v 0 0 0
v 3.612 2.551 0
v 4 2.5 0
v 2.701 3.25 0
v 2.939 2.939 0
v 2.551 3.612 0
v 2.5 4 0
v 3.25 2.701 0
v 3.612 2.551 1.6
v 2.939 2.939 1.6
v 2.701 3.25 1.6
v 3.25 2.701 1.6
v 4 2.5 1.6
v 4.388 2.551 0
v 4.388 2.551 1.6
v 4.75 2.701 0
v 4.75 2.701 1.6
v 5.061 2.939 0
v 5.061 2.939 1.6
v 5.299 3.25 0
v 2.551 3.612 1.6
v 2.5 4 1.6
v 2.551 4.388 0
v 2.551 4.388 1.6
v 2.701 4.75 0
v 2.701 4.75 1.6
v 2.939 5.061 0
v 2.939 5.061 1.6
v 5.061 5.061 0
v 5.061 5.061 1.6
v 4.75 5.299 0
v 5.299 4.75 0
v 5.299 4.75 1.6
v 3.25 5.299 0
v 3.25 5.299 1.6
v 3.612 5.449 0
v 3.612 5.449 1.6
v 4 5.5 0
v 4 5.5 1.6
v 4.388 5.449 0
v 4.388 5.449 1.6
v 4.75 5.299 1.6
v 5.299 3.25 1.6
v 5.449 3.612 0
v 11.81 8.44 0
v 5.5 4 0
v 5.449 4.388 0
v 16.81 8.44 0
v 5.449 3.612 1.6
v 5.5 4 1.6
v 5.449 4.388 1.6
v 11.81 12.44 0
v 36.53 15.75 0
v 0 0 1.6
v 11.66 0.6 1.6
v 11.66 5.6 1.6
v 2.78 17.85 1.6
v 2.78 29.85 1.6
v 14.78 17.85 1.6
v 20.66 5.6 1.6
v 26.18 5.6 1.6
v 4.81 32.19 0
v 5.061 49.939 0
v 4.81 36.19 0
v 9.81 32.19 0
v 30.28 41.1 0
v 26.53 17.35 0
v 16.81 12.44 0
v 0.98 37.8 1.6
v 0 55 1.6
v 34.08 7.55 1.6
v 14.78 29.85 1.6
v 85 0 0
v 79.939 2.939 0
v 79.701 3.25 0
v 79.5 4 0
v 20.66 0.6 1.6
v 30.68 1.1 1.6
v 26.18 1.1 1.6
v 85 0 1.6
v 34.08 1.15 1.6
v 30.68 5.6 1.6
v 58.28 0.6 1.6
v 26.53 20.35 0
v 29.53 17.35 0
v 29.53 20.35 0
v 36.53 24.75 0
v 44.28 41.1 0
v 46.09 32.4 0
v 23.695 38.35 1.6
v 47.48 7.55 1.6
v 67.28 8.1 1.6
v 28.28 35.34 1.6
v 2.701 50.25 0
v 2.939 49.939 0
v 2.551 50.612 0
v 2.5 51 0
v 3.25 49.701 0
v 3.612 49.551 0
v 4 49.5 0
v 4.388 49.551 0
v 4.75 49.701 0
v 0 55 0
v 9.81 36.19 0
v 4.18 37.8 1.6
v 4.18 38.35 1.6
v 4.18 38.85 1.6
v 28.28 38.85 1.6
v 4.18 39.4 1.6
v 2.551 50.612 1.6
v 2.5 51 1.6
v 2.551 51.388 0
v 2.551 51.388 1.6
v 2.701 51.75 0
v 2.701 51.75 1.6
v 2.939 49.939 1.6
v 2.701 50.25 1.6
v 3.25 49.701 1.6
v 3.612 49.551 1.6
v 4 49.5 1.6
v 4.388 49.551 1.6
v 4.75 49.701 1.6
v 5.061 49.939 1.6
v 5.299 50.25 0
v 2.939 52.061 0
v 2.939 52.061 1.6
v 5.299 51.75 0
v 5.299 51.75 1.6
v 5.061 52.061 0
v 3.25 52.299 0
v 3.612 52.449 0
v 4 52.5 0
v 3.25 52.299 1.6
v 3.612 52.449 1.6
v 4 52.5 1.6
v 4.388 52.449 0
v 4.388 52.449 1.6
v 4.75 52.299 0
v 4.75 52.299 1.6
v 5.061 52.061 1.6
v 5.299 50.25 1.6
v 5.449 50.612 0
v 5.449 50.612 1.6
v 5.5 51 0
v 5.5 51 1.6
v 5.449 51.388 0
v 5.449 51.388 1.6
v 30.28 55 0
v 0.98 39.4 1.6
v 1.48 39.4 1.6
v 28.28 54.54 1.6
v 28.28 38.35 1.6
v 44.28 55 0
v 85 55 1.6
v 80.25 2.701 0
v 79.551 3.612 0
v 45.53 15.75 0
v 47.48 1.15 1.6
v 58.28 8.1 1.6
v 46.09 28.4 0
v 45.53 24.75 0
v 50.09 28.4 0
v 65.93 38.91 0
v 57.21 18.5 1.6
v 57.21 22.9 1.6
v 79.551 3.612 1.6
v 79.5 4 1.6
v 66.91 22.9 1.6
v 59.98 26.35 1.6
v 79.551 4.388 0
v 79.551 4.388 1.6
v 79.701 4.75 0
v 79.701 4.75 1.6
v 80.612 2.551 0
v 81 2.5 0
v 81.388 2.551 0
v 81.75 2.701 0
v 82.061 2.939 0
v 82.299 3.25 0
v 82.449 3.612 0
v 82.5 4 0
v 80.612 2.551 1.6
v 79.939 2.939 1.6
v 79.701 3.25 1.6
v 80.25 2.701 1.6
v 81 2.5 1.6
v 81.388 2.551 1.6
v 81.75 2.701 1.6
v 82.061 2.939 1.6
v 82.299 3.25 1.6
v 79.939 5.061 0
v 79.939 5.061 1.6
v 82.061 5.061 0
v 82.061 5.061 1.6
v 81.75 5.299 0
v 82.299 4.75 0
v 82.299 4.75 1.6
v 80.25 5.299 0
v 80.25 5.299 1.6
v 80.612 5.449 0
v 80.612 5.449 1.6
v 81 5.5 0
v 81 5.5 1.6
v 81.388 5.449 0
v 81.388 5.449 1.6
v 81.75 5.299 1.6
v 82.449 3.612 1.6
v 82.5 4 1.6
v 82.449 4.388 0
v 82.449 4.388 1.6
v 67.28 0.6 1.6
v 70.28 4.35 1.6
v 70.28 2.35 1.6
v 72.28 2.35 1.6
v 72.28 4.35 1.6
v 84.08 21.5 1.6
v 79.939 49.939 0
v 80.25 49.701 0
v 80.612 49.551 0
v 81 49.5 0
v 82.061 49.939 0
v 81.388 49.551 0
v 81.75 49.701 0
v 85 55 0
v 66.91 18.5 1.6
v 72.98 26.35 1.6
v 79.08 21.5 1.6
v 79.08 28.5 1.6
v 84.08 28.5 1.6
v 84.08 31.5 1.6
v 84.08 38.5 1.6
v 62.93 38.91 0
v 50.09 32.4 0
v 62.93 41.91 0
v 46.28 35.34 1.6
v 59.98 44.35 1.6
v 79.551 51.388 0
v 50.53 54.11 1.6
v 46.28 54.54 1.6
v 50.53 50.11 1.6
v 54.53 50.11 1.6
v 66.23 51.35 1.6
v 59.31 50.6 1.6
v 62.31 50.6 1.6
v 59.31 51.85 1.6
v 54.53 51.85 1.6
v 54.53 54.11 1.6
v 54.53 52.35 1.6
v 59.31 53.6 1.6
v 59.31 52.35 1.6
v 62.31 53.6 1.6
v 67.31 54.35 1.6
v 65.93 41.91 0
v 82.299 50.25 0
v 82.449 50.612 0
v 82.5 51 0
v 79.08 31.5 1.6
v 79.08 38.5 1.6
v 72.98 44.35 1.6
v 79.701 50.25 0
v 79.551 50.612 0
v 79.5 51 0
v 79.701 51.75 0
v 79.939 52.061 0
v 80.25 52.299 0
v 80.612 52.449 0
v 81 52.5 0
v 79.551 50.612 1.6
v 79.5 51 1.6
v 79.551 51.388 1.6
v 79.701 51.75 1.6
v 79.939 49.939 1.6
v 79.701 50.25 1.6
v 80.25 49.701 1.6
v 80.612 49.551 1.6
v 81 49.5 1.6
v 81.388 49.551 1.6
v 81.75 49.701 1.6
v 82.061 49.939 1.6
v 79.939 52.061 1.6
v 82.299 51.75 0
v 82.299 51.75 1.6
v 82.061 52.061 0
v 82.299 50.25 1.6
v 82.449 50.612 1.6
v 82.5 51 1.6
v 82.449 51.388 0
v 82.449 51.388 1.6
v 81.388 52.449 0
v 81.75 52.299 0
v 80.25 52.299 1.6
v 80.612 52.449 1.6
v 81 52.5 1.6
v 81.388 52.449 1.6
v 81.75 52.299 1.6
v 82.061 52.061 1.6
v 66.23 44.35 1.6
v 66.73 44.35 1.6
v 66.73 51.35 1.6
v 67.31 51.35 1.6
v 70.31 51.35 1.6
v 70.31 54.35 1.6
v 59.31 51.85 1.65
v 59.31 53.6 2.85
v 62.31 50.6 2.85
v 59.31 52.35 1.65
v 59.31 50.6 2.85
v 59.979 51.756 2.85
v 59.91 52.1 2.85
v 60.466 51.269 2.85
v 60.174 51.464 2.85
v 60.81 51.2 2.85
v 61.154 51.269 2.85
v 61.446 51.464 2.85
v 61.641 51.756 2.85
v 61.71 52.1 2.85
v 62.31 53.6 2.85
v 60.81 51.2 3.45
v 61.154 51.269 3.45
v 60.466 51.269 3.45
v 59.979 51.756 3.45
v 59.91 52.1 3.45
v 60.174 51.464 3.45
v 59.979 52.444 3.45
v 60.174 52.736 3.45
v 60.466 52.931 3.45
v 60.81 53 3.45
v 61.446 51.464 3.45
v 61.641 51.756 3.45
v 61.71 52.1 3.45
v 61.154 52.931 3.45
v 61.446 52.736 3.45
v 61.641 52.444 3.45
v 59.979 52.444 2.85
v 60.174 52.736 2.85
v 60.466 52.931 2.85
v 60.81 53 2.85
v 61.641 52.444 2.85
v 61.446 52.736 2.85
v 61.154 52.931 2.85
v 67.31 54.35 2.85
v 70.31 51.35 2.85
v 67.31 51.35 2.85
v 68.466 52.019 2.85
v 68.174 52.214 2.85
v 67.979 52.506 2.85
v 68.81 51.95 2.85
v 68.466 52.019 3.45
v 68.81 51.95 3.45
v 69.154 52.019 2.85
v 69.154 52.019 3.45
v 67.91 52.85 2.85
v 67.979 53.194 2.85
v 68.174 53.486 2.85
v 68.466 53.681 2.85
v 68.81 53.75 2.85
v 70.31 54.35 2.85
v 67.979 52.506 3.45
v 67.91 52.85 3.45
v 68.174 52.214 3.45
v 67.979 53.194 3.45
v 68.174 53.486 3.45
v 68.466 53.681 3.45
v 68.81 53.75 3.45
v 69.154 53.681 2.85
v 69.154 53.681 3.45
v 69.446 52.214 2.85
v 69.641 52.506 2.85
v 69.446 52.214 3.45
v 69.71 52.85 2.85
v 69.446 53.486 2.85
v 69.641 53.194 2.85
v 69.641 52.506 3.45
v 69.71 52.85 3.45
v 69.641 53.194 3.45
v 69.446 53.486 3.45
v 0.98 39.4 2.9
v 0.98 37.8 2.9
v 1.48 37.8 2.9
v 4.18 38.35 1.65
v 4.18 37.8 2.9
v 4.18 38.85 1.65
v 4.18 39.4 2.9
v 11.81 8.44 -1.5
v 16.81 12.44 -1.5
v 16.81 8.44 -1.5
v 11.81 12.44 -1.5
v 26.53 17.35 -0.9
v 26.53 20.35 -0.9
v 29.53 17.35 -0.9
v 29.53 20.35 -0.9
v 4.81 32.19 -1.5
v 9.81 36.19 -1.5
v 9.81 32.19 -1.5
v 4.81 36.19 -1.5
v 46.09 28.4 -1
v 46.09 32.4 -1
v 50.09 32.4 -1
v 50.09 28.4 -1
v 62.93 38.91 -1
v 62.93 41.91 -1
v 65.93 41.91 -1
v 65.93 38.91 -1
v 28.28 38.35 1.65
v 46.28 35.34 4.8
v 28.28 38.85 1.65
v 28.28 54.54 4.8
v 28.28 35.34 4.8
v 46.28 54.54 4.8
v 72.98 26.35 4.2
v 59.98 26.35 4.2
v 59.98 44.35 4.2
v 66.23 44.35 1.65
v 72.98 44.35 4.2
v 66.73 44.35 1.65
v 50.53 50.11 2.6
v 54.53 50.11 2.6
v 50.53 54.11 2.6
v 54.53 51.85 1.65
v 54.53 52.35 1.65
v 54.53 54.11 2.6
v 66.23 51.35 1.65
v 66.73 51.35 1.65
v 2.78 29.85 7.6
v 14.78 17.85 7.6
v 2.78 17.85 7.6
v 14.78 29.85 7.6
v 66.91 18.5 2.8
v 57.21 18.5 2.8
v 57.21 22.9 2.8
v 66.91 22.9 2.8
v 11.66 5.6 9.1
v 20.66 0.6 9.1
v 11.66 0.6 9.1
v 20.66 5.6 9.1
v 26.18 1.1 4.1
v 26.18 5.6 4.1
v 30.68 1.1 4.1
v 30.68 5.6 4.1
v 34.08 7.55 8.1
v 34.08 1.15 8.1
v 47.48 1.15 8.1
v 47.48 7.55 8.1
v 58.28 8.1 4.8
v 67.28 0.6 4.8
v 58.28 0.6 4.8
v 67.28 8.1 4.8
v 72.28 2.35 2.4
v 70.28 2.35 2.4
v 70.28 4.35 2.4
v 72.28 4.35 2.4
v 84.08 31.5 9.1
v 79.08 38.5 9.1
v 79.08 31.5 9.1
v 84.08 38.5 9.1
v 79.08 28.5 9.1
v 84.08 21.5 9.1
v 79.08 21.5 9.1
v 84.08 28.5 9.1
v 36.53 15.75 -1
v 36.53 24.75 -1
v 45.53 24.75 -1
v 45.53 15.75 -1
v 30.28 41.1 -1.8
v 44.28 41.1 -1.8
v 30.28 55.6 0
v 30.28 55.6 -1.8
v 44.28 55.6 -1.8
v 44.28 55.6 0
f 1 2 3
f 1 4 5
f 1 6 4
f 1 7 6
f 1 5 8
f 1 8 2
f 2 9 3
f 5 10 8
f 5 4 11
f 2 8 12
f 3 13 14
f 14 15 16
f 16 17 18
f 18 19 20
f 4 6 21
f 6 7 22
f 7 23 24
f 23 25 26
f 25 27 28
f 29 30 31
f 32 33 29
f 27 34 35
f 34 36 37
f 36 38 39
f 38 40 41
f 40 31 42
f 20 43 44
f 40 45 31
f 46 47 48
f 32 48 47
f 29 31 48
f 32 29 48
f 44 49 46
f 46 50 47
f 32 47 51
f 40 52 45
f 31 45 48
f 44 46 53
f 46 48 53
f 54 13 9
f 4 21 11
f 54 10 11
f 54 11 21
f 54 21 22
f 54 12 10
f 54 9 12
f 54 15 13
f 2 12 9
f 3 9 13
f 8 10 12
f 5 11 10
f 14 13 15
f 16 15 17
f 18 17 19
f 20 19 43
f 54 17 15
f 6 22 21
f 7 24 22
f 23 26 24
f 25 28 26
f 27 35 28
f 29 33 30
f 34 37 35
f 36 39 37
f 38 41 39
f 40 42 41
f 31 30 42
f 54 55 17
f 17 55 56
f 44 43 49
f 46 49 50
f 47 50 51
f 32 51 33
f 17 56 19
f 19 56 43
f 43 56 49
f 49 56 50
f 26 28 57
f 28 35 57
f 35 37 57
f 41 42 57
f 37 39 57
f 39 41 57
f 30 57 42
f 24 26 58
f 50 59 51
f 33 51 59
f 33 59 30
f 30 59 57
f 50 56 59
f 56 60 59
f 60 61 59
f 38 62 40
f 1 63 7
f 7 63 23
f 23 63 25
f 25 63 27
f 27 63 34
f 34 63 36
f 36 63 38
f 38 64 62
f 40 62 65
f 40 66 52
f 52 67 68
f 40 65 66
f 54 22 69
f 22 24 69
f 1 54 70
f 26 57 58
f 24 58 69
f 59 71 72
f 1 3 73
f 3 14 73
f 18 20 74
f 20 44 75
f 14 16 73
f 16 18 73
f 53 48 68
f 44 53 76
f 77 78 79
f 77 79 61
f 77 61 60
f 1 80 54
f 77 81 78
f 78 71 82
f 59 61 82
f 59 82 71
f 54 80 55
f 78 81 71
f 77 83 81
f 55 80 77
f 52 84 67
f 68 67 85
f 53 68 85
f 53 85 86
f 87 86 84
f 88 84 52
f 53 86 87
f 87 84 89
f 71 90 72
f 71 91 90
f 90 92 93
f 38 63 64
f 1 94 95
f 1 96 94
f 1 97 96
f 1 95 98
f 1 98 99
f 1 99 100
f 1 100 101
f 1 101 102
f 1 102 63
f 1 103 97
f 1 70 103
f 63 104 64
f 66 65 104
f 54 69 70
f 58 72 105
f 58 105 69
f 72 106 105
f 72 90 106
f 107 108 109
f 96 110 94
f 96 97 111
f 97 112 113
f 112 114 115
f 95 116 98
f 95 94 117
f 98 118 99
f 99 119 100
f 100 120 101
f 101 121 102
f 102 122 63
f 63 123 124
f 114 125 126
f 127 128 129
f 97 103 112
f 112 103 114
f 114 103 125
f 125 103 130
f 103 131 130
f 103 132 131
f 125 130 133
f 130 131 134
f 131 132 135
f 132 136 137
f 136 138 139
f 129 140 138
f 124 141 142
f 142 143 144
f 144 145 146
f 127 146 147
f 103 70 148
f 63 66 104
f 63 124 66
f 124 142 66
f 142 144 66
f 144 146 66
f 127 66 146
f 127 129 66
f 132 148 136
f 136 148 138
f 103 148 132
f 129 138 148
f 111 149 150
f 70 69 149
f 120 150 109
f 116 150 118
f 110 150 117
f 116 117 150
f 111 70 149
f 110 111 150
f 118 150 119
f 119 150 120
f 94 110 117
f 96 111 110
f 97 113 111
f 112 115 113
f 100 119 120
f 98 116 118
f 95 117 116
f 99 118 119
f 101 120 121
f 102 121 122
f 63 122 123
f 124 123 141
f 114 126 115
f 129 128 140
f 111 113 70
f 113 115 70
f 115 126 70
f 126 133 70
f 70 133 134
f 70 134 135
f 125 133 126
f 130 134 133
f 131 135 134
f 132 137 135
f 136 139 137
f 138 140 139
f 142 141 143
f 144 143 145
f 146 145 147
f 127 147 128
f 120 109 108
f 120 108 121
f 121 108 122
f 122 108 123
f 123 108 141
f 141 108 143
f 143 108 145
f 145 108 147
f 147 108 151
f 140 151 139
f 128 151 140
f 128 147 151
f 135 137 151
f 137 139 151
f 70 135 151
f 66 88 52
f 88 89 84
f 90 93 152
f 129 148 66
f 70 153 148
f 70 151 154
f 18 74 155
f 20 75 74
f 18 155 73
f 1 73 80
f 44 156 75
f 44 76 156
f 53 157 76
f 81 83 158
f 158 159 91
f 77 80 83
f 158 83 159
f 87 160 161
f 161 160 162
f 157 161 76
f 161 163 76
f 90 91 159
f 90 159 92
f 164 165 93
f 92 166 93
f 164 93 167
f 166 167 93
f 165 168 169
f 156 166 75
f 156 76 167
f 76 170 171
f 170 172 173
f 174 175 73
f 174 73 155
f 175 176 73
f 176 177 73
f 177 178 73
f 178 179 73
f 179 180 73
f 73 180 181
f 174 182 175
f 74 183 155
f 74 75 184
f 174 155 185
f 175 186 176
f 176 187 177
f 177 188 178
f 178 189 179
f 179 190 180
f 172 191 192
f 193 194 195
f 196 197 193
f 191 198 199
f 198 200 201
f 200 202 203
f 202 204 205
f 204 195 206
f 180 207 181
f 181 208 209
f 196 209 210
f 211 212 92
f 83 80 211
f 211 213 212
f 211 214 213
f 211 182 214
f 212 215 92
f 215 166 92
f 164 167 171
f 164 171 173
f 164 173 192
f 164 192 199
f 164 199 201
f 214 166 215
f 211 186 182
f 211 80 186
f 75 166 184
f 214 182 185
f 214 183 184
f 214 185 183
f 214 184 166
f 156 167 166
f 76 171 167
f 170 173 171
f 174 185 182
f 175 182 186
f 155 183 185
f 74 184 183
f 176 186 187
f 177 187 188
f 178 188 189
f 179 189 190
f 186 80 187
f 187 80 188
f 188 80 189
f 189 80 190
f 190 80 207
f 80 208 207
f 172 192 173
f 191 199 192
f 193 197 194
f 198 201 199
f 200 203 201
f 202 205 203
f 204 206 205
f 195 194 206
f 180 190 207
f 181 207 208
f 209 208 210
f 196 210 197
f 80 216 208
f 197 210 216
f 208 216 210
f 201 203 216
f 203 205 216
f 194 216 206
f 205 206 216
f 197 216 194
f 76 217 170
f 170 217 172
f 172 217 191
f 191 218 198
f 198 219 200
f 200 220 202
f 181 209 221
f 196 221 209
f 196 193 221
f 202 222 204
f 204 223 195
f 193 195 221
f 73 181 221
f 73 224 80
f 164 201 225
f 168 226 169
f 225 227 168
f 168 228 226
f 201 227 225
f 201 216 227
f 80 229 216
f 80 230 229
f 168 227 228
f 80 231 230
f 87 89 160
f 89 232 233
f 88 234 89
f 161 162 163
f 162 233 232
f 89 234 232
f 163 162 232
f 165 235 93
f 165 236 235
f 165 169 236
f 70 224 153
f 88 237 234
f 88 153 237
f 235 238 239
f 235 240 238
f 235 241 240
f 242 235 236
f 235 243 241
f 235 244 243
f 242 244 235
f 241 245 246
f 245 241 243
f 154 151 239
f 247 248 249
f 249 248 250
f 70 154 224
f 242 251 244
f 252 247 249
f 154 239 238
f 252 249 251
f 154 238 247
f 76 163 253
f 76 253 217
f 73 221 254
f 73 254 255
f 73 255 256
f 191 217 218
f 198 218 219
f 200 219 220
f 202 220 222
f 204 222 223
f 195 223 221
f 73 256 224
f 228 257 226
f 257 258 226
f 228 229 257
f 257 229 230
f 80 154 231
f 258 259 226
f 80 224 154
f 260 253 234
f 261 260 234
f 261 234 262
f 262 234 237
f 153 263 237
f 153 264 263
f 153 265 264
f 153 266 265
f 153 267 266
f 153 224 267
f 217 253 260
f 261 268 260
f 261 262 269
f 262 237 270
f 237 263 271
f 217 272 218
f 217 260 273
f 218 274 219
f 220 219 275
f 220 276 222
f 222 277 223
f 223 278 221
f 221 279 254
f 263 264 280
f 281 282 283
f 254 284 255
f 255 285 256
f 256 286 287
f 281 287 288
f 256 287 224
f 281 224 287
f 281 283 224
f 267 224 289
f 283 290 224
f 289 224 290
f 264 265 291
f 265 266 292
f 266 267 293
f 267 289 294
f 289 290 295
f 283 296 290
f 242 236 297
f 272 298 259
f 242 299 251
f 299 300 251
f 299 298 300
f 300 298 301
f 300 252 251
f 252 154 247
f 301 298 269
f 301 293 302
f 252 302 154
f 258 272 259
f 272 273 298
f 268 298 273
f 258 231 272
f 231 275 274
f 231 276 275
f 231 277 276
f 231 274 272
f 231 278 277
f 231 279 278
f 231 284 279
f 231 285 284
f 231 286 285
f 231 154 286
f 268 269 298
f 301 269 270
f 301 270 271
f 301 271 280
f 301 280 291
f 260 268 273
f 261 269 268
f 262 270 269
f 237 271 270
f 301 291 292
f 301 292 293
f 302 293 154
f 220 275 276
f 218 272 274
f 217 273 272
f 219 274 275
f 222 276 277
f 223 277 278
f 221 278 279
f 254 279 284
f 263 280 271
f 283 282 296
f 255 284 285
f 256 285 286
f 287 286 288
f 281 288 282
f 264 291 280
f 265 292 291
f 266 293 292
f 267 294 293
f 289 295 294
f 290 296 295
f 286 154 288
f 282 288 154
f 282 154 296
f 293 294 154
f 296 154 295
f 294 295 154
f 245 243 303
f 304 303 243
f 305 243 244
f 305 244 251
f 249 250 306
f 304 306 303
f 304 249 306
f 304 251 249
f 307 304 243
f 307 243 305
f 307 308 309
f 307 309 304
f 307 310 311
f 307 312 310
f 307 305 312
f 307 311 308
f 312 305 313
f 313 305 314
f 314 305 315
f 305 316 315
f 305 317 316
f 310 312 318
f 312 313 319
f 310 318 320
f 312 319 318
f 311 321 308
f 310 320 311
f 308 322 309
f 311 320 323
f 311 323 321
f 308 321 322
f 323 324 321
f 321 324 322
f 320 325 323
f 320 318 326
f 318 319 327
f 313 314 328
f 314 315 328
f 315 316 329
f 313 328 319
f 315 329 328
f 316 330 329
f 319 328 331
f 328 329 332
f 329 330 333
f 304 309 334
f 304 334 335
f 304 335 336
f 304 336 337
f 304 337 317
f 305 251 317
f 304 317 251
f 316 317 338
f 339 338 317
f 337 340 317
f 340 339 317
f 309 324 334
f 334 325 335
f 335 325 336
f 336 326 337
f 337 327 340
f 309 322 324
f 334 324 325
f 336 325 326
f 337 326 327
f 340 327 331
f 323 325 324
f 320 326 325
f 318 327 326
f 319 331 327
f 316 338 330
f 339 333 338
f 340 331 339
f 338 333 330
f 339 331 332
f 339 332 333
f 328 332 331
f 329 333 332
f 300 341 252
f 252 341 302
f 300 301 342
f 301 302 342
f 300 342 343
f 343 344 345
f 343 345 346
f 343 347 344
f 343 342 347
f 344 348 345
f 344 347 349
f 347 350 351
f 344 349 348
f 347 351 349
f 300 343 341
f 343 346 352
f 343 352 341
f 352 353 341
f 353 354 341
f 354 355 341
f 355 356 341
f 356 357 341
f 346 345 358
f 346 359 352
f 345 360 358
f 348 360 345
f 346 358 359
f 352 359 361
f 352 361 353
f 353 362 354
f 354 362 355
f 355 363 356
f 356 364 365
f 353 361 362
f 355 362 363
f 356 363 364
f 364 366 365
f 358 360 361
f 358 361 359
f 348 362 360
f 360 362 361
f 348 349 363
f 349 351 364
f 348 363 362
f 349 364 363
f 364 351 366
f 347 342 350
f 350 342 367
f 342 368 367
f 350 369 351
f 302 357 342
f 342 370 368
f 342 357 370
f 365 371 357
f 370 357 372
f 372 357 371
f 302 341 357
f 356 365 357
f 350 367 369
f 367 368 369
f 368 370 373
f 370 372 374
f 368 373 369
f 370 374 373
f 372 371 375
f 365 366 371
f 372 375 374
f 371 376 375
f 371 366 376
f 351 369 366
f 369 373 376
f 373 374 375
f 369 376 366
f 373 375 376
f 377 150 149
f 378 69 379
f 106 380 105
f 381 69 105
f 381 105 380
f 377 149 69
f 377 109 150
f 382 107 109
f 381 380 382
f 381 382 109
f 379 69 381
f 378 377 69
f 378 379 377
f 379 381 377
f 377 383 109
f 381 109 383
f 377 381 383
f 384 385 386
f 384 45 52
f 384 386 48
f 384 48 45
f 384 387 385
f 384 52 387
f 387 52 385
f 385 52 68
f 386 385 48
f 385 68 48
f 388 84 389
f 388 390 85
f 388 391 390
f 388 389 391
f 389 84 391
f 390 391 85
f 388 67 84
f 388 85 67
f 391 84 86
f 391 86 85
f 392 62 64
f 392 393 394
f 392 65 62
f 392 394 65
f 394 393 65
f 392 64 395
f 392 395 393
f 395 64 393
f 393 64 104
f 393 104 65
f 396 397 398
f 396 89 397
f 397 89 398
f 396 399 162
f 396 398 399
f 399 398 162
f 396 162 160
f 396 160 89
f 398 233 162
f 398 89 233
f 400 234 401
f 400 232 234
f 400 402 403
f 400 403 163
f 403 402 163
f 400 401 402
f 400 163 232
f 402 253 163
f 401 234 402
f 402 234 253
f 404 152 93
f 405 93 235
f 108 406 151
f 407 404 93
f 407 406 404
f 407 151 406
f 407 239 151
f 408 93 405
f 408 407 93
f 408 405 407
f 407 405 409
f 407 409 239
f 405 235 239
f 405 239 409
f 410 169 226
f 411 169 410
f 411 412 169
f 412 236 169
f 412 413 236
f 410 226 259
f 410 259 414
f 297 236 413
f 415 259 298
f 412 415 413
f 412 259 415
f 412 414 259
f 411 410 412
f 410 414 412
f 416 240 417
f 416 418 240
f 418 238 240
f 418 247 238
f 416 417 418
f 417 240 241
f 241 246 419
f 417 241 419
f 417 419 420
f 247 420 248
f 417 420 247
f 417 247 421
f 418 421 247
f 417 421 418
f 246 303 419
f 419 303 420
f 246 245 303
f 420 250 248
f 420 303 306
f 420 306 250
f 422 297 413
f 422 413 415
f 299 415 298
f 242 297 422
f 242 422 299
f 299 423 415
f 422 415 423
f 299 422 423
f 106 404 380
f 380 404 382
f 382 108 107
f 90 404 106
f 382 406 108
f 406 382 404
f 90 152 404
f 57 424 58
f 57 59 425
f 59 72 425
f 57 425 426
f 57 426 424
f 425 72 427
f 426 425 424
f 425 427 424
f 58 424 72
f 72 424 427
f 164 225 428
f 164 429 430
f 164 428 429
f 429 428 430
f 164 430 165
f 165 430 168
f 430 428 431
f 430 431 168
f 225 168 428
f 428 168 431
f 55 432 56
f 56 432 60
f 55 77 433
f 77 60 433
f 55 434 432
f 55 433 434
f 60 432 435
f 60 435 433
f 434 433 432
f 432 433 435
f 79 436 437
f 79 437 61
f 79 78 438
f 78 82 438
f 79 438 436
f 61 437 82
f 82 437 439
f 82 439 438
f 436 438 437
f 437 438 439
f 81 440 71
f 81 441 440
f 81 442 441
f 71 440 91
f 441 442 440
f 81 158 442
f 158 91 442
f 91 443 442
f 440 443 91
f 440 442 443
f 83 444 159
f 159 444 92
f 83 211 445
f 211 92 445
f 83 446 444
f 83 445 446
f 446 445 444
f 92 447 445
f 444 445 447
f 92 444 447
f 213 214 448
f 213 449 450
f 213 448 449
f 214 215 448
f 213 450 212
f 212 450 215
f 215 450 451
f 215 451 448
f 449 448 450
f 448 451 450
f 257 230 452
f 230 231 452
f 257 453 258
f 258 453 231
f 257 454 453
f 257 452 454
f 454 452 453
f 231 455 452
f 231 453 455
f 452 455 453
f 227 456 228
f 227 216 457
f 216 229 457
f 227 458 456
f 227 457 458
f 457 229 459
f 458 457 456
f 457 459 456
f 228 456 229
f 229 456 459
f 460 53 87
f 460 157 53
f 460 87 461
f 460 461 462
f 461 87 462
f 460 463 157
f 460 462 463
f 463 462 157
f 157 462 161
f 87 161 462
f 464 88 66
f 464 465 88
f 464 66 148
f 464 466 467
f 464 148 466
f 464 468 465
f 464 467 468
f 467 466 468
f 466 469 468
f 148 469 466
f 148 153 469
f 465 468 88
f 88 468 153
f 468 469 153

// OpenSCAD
// =============================================================================
// OpenMotorBridge - Dummy 3D Model: Main Board PCB (PCBA 01 Rev 10.0)
// =============================================================================
// File: hardware/cad/scad/00_common/dummies/dummy_main_pcb.scad
// Description: Accurate 3D representation of the central openMotorBridge
//              mainboard (PCBA 01: 85.0 x 55.0 x 1.6 mm, 4 layers ENIG)
//              with all v10 ICs, vertical connectors, and triple antenna ports:
//              - ANT1: LoRa 868 MHz (Hirose U.FL at X=60.81, Y=52.10)
//              - ANT2: Helmet Audio BT 5.4 (Hirose U.FL at X=68.81, Y=52.85)
//              - ANT3: BLE 2.4 GHz (Johanson 2450AT18 Ceramic Chip at X=2.58, Y=38.60)
//
// COORDINATE SYSTEM CONVENTION (OpenSCAD Cartesian):
// - X: 0.0 to 85.0 mm (West to East)
// - Y: 0.0 to 55.0 mm (South [Front Wall / Connectors] to North [Rear Wall / Antennas])
//   * Y = 0..10 mm (SOUTH): J1 (Bordnetz 6P), SW1 (Button), J6 (Periphery 16P), J3 (USB-C), D1 (Status LED)
//   * Y = 40..55 mm (NORTH): ANT1 (LoRa U.FL), ANT2 (Helmaudio U.FL), U2 (ESP32-S31), J2 (MicroSD Slot), U10 (SX1262)
//   * X = 0..5 mm (WEST): ANT3 (Johanson Ceramic Chip Antenna for BLE at X=2.58, Y=38.60)
//   * X = 80..85 mm (EAST): J5 (Battery 4P at Y = 35.0), J7 (Reserve USB 4P at Y = 25.0)
// =============================================================================

include <../parameters.scad>;

module dummy_main_pcb() {
    // 1. PCB Substrate (FR4 4-Layer High-TG150 Green ENIG: 85.0 x 55.0 x 1.6 mm)
    color("forestgreen") {
        difference() {
            cube(size=[85.0, 55.0, 1.6], center=false);
            // 4x M2.5 / M3 Mounting Holes (offset 4.0 mm: 77.0 x 47.0 mm pitch)
            translate([4.0, 4.0, -0.5]) cylinder(r=1.5, h=2.6, $fn=24);
            translate([81.0, 4.0, -0.5]) cylinder(r=1.5, h=2.6, $fn=24);
            translate([4.0, 51.0, -0.5]) cylinder(r=1.5, h=2.6, $fn=24);
            translate([81.0, 51.0, -0.5]) cylinder(r=1.5, h=2.6, $fn=24);
        }
    }

    // --- NORTH / REAR COMPONENTS & DUAL U.FL PORTS (Y = 40..55 mm) ---

    // 2. Main Controller: ESP32-S31-WROOM-1U (U2: 18.0 x 19.2 x 3.2 mm)
    // KiCad: X = 37.28, Y_cad = 44.94 mm
    color("silver")
        translate([37.28 - 9.0, 44.94 - 9.6, 1.6])
            cube(size=[18.0, 19.2, 3.2], center=false);

    // 3. Dedicated Helmet Audio SoC: Qualcomm QCC3084 BT 5.4 (U9: 13.0 x 18.0 x 2.6 mm)
    // KiCad: X = 66.48, Y_cad = 35.35 mm (Routes RF via Pin 15 to ANT2 U.FL)
    color([0.15, 0.40, 0.55])
        translate([66.48 - 6.5, 35.35 - 9.0, 1.6])
            cube(size=[13.0, 18.0, 2.6], center=false);

    // 4. Semtech SX1262 LoRa 868 MHz Transceiver (U10: 4.0 x 4.0 x 1.0 mm)
    // KiCad: X = 52.53, Y_cad = 52.11 mm
    color("darkslategray")
        translate([52.53 - 2.0, 52.11 - 2.0, 1.6])
            cube(size=[4.0, 4.0, 1.0], center=false);

    // 5. ANT1: LoRa 868 MHz Hirose U.FL Receptacle (Taoglas FXP895 flex cable connection)
    // KiCad: X = 60.81, Y_cad = 52.10 mm
    color("gold") {
        translate([60.81 - 1.5, 52.10 - 1.5, 1.6])
            cube(size=[3.0, 3.0, 1.25], center=false);
        translate([60.81, 52.10, 1.6 + 1.25])
            cylinder(r=0.9, h=0.6, $fn=16);
    }
    // 50 Ohm CPW RF Microstrip from U10 to ANT1
    color("gold")
        translate([52.53 + 2.0, 52.10 - 0.25, 1.6])
            cube(size=[60.81 - (52.53 + 2.0) - 1.5, 0.5, 0.05], center=false);

    // 6. ANT2: Helmet Audio BT 5.4 Hirose U.FL Receptacle (Taoglas FXP73 flex cable connection)
    // Placed right next to ANT1: KiCad X = 68.81, Y_cad = 52.85 mm, rotated 90°
    color("gold") {
        translate([68.81 - 1.5, 52.85 - 1.5, 1.6])
            cube(size=[3.0, 3.0, 1.25], center=false);
        translate([68.81, 52.85, 1.6 + 1.25])
            cylinder(r=0.9, h=0.6, $fn=16);
    }
    // 50 Ohm CPW RF Microstrip from U9 to ANT2
    color("gold")
        translate([66.48 - 0.25, 35.35 + 9.0, 1.6])
            cube(size=[0.5, 52.85 - (35.35 + 9.0) - 1.5, 0.05], center=false);

    // --- WEST / LEFT EDGE ON-BOARD CERAMIC CHIP ANTENNA (X = 0..5 mm) ---

    // 7. ANT3: On-Board Johanson 2450AT18D0100 2.4 GHz Ceramic Chip Antenna for ESP32-S31 BLE
    // KiCad: X = 2.58, Y_cad = 38.60 mm, rotated 180° (feed facing inward to MCU, 2.58 mm edge clearance)
    // Dimensions: 3.2 x 1.6 x 1.3 mm (1206 footprint)
    translate([2.58, 38.60, 1.6]) {
        // Ceramic body
        color("ghostwhite")
            translate([-1.6, -0.8, 0])
                cube(size=[3.2, 1.6, 1.3], center=false);
        // Solder termination end caps
        color("silver") {
            translate([-1.6, -0.8, 0]) cube(size=[0.5, 1.6, 1.3], center=false); // GND terminal (facing edge)
            translate([1.1, -0.8, 0]) cube(size=[0.5, 1.6, 1.3], center=false);  // Feed terminal (facing MCU)
        }
    }
    // RF Feed Trace from ESP32-S31 to ANT3
    color("gold")
        translate([2.58 + 1.6, 38.60 - 0.25, 1.6])
            cube(size=[37.28 - 9.0 - (2.58 + 1.6), 0.5, 0.05], center=false);

    // --- POWER STAGE & ACTUATOR SWITCHES (X = 0..25 mm & X = 55..75 mm) ---

    // 8. LM5164-Q1 Power Choke L1 (Sunlord MWSA1206S-470: 12.0 x 12.0 x 6.0 mm)
    // KiCad: X = 8.78, Y_cad = 23.85 mm
    color([0.25, 0.25, 0.28])
        translate([8.78 - 6.0, 23.85 - 6.0, 1.6])
            cube(size=[12.0, 12.0, 6.0], center=false); // 47µH High-Current Inductor

    // 9. U12: TI TPS4H160BQPWPRQ1 Quad Smart High-Side Power Switch (HTSSOP-28: 9.7 x 4.4 x 1.2 mm)
    // KiCad: X = 62.06, Y_cad = 20.70 mm
    color("darkslategray")
        translate([62.06 - 4.85, 20.70 - 2.2, 1.6])
            cube(size=[9.7, 4.4, 1.2], center=false);

    // --- SOUTH / FRONT EDGE CONNECTORS (Y = 0..10 mm) ---

    // 10. Header J1: Molex Micro-Lock Plus 1.25mm 6-Pin Vertikal (Bordnetz & CAN)
    // KiCad: X = 16.16, Y_cad = 3.10 mm
    color("ivory")
        translate([16.16 - 4.5, 3.10 - 2.5, 1.6])
            cube(size=[9.0, 5.0, 7.5], center=false);

    // 11. Push-Button SW1 (Pairing / Reset: Alps SKRK)
    // KiCad: X = 28.43, Y_cad = 3.35 mm
    color("crimson")
        translate([28.43 - 2.25, 3.35 - 2.25, 1.6])
            cube(size=[4.5, 4.5, 2.5], center=false);

    // 12. Header J6: Molex Micro-Lock Plus 16-Pin 2x08 Vertikal (4 Autarke OMB-Systemstränge)
    // KiCad: X = 40.78, Y_cad = 4.35 mm
    color("ivory")
        translate([40.78 - 6.7, 4.35 - 3.2, 1.6])
            cube(size=[13.4, 6.4, 6.5], center=false);

    // 13. Receptacle J3: USB Type-C 16-Pin Service & Flash Port (HRO TYPE-C-31-M-12)
    // KiCad: X = 62.78, Y_cad = 4.10 mm
    color("silver")
        translate([62.78 - 4.5, 4.10 - 3.5, 1.6])
            cube(size=[9.0, 7.5, 3.2], center=false);

    // 14. Status LED D1 (WS2812B RGB directly to the right of J3 along front edge)
    // KiCad: X = 71.28, Y_cad = 3.35 mm (directly behind front light pipe window)
    color("cyan")
        translate([71.28 - 1.0, 3.35 - 1.0, 1.6])
            cube(size=[2.0, 2.0, 0.8], center=false);

    // --- EAST / SIDE EDGE HEADERS (X = 80..85 mm) ---

    // 15. Header J5: USV-Akku & NTC (Molex Micro-Lock Plus 4-Pin Vertikal)
    // KiCad: X = 81.58, Y_cad = 35.00 mm
    color("ivory")
        translate([81.58 - 2.5, 35.00 - 3.5, 1.6])
            cube(size=[5.0, 7.0, 7.5], center=false);

    // 16. Header J7: Reserve USB Port 7 (Molex Micro-Lock Plus 4-Pin Vertikal)
    // KiCad: X = 81.58, Y_cad = 25.00 mm
    color("ivory")
        translate([81.58 - 2.5, 25.00 - 3.5, 1.6])
            cube(size=[5.0, 7.0, 7.5], center=false);

    // --- BOTTOM LAYER (B.Cu) COMPONENTS ---

    // 17. Microchip USB2517I 7-Port Automotive USB 2.0 Hub (U8: QFN-64 9x9mm)
    // KiCad: X = 41.03, Y_cad = 20.25 mm
    color("darkslategray")
        translate([41.03 - 4.5, 20.25 - 4.5, -1.0])
            cube(size=[9.0, 9.0, 1.0], center=false);

    // 18. TI LM5164-Q1 72V Step-Down (U1), BQ24075 USV Controller (U4), ES8388 Codec (U3)
    color("black") {
        translate([7.31 - 2.5, 34.19 - 2.0, -1.5]) cube(size=[5.0, 4.0, 1.5], center=false);  // U1 LM5164
        translate([64.43 - 1.5, 40.41 - 1.5, -1.0]) cube(size=[3.0, 3.0, 1.0], center=false); // U4 BQ24075
        translate([48.09 - 2.0, 30.40 - 2.0, -1.0]) cube(size=[4.0, 4.0, 1.0], center=false); // U3 ES8388
        translate([14.31 - 2.5, 10.44 - 2.0, -1.5]) cube(size=[5.0, 4.0, 1.5], center=false); // U6 TCAN334G
        translate([28.03 - 1.5, 18.85 - 1.5, -0.9]) cube(size=[3.0, 3.0, 0.9], center=false); // U5 BMI270
    }

    // 19. Hirose DM3D-SF MicroSD Push-Pull Card Slot (J2 on B.Cu at North / rear edge)
    // KiCad: X = 37.28, Y_cad = 48.10 mm
    color("lightgrey")
        translate([37.28 - 7.0, 48.10 - 7.0, -1.8])
            cube(size=[14.0, 14.5, 1.8], center=false);
}

// Standalone preview
dummy_main_pcb();
